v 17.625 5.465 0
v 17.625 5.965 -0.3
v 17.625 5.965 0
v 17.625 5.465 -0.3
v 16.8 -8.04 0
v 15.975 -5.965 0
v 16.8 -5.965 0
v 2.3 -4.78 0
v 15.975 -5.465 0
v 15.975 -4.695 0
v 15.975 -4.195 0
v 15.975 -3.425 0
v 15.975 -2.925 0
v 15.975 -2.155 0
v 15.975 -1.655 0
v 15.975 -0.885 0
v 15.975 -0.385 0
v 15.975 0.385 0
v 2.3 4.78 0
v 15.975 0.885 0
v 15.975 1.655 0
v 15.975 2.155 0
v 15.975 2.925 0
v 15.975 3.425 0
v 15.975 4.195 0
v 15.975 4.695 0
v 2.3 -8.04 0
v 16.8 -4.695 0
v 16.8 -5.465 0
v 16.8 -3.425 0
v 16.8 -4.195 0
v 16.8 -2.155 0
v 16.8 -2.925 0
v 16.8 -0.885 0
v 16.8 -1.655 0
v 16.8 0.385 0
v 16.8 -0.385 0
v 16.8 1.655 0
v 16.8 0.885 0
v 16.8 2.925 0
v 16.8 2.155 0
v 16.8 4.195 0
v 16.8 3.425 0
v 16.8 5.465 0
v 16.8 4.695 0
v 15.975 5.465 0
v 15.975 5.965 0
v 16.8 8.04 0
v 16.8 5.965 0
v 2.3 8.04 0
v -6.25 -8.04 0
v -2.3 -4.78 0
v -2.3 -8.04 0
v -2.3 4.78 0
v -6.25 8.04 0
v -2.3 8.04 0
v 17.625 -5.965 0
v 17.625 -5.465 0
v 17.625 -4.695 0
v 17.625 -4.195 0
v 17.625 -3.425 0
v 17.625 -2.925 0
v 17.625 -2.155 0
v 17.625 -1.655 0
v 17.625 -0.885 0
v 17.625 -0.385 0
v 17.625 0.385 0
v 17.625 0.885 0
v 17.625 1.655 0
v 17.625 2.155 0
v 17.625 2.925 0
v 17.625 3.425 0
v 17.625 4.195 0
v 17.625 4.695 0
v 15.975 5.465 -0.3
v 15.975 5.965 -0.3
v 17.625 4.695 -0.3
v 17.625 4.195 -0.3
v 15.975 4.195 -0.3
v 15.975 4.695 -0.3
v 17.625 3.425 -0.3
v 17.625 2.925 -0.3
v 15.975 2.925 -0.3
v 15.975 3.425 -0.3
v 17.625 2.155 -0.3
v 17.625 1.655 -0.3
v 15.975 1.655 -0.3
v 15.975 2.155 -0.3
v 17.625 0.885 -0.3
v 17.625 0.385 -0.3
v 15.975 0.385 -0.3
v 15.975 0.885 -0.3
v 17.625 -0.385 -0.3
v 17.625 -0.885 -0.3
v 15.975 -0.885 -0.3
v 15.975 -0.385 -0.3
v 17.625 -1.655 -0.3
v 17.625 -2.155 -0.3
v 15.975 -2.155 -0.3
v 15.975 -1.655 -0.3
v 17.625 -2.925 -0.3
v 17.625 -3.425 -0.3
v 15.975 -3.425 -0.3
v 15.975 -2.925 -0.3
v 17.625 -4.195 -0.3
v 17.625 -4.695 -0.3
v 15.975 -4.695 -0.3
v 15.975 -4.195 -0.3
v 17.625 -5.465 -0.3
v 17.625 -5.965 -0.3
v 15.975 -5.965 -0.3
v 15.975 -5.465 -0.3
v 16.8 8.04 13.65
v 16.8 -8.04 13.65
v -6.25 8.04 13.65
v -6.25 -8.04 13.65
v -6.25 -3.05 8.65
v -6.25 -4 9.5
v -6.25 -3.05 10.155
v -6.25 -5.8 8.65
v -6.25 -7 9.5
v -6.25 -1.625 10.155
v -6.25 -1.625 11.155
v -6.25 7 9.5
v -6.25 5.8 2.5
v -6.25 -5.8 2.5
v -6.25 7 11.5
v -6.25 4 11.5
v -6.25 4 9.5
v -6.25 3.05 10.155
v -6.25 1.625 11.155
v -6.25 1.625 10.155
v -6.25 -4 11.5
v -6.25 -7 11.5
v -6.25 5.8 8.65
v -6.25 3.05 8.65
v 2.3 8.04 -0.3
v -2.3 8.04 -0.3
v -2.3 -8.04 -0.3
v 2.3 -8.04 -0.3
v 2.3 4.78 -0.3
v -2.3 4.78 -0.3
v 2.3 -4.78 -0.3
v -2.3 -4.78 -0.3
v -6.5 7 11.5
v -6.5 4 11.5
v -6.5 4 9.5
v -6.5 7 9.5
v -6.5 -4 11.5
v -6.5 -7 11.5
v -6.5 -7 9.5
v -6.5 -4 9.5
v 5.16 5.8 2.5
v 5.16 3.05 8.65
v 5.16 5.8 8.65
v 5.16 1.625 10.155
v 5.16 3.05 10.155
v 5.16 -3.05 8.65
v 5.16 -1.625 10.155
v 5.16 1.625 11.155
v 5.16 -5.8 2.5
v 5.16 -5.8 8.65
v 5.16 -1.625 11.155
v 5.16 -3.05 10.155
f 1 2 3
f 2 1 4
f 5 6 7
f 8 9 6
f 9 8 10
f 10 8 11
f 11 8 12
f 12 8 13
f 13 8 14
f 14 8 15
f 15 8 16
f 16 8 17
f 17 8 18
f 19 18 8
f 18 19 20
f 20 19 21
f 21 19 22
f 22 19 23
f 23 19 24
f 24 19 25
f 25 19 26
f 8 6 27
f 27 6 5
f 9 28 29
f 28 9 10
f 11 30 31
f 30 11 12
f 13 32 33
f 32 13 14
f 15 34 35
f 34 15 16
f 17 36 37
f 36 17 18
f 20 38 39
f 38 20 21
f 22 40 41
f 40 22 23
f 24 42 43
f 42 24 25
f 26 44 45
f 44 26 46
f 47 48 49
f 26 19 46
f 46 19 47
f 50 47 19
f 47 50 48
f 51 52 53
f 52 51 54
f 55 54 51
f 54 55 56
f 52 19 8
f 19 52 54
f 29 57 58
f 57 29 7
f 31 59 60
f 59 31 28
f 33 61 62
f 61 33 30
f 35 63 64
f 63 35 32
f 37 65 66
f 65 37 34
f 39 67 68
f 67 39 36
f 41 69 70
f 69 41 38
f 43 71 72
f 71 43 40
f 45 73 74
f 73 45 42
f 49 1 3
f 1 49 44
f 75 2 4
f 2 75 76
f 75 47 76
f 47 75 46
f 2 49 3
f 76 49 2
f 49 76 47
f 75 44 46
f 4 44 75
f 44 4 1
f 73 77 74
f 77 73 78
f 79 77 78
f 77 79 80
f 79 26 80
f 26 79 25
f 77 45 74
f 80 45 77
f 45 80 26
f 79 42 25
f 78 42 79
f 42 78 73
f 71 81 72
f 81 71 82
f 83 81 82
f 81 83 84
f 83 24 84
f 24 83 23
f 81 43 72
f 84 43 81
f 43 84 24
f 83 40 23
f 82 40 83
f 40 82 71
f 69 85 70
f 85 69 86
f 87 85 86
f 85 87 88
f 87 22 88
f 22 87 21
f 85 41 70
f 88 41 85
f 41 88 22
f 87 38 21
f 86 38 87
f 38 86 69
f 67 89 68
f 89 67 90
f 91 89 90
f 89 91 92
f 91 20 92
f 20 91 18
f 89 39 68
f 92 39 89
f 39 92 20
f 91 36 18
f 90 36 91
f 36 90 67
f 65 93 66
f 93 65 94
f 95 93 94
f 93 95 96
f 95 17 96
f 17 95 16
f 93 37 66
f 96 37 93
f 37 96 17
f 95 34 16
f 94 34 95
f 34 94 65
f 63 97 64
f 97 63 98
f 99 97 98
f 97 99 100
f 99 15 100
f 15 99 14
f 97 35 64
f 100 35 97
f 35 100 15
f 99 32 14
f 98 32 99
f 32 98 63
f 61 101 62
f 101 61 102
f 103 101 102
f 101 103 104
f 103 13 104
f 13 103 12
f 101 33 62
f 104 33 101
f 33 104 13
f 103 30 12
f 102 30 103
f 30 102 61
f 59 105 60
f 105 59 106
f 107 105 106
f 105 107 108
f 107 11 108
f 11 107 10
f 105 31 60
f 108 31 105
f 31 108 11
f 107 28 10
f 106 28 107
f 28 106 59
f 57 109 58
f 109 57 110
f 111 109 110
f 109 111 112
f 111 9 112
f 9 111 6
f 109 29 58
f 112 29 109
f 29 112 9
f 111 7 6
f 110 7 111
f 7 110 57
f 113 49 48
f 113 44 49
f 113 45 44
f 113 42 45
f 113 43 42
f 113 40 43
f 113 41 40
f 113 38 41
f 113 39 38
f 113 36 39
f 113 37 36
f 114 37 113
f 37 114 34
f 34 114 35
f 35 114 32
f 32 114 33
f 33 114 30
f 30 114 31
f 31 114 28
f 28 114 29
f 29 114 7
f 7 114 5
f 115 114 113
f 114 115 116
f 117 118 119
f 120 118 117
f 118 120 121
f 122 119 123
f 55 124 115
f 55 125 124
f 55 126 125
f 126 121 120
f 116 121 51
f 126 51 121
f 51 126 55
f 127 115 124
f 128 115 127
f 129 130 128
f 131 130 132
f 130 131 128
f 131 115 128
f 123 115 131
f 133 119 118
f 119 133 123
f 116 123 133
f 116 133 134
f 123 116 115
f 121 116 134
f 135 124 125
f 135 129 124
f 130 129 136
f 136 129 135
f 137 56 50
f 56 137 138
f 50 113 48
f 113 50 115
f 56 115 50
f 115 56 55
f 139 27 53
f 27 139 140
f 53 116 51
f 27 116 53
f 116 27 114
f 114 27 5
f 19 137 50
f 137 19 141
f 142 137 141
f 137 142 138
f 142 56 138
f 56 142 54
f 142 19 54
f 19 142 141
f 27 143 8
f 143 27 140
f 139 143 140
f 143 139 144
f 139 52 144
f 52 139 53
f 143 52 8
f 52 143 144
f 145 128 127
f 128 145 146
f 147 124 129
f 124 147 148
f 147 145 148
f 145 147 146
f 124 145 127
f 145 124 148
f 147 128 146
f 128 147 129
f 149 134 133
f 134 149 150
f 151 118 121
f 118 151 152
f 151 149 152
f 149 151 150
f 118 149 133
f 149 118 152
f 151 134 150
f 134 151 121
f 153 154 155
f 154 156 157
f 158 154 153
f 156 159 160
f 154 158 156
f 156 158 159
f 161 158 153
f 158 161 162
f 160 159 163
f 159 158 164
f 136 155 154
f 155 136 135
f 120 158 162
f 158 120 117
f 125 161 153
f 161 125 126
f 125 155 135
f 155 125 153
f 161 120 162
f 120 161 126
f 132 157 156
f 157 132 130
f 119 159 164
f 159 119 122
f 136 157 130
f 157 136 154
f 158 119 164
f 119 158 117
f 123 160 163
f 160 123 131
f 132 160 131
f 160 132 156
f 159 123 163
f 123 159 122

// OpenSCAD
$fn = 100;

rj45();

module rj45(){
    difference(){
        union(){
            //main
            translate([23.05/2-6.25,0,13.65/2])cube([23.05,16.08,13.65],center=true);
            //pads SHIELD
            translate([0,16.08/2-3.26/2,-0.3/2])cube([4.6,3.26,0.3],center=true);
            translate([0,-16.08/2+3.26/2,-0.3/2])cube([4.6,3.26,0.3],center=true);
            //pads rear
            for(i = [0:9]){
                translate([23.05-6.25,(11.43/2)-(1.27*i),-0.3/2])cube([1.65,0.5,0.3],center=true);
            }
            //leds
            translate([-4.5,5.5,1/2+7.5+2.5])cube([4,3,2],center=true);
            translate([-4.5,-5.5,1/2+7.5+2.5])cube([4,3,2],center=true);
        } translate([-1,0,2.5])union(){
            //jack
            translate([0,0,6.15/2])cube([12.32,11.6,6.151],center=true);
            translate([0,0,6.15+1.5/2])cube([12.32,6.10,1.51],center=true);
            translate([0,0,6.15+1.5+1/2])cube([12.32,3.25,1.01],center=true);

        }
    }
}
